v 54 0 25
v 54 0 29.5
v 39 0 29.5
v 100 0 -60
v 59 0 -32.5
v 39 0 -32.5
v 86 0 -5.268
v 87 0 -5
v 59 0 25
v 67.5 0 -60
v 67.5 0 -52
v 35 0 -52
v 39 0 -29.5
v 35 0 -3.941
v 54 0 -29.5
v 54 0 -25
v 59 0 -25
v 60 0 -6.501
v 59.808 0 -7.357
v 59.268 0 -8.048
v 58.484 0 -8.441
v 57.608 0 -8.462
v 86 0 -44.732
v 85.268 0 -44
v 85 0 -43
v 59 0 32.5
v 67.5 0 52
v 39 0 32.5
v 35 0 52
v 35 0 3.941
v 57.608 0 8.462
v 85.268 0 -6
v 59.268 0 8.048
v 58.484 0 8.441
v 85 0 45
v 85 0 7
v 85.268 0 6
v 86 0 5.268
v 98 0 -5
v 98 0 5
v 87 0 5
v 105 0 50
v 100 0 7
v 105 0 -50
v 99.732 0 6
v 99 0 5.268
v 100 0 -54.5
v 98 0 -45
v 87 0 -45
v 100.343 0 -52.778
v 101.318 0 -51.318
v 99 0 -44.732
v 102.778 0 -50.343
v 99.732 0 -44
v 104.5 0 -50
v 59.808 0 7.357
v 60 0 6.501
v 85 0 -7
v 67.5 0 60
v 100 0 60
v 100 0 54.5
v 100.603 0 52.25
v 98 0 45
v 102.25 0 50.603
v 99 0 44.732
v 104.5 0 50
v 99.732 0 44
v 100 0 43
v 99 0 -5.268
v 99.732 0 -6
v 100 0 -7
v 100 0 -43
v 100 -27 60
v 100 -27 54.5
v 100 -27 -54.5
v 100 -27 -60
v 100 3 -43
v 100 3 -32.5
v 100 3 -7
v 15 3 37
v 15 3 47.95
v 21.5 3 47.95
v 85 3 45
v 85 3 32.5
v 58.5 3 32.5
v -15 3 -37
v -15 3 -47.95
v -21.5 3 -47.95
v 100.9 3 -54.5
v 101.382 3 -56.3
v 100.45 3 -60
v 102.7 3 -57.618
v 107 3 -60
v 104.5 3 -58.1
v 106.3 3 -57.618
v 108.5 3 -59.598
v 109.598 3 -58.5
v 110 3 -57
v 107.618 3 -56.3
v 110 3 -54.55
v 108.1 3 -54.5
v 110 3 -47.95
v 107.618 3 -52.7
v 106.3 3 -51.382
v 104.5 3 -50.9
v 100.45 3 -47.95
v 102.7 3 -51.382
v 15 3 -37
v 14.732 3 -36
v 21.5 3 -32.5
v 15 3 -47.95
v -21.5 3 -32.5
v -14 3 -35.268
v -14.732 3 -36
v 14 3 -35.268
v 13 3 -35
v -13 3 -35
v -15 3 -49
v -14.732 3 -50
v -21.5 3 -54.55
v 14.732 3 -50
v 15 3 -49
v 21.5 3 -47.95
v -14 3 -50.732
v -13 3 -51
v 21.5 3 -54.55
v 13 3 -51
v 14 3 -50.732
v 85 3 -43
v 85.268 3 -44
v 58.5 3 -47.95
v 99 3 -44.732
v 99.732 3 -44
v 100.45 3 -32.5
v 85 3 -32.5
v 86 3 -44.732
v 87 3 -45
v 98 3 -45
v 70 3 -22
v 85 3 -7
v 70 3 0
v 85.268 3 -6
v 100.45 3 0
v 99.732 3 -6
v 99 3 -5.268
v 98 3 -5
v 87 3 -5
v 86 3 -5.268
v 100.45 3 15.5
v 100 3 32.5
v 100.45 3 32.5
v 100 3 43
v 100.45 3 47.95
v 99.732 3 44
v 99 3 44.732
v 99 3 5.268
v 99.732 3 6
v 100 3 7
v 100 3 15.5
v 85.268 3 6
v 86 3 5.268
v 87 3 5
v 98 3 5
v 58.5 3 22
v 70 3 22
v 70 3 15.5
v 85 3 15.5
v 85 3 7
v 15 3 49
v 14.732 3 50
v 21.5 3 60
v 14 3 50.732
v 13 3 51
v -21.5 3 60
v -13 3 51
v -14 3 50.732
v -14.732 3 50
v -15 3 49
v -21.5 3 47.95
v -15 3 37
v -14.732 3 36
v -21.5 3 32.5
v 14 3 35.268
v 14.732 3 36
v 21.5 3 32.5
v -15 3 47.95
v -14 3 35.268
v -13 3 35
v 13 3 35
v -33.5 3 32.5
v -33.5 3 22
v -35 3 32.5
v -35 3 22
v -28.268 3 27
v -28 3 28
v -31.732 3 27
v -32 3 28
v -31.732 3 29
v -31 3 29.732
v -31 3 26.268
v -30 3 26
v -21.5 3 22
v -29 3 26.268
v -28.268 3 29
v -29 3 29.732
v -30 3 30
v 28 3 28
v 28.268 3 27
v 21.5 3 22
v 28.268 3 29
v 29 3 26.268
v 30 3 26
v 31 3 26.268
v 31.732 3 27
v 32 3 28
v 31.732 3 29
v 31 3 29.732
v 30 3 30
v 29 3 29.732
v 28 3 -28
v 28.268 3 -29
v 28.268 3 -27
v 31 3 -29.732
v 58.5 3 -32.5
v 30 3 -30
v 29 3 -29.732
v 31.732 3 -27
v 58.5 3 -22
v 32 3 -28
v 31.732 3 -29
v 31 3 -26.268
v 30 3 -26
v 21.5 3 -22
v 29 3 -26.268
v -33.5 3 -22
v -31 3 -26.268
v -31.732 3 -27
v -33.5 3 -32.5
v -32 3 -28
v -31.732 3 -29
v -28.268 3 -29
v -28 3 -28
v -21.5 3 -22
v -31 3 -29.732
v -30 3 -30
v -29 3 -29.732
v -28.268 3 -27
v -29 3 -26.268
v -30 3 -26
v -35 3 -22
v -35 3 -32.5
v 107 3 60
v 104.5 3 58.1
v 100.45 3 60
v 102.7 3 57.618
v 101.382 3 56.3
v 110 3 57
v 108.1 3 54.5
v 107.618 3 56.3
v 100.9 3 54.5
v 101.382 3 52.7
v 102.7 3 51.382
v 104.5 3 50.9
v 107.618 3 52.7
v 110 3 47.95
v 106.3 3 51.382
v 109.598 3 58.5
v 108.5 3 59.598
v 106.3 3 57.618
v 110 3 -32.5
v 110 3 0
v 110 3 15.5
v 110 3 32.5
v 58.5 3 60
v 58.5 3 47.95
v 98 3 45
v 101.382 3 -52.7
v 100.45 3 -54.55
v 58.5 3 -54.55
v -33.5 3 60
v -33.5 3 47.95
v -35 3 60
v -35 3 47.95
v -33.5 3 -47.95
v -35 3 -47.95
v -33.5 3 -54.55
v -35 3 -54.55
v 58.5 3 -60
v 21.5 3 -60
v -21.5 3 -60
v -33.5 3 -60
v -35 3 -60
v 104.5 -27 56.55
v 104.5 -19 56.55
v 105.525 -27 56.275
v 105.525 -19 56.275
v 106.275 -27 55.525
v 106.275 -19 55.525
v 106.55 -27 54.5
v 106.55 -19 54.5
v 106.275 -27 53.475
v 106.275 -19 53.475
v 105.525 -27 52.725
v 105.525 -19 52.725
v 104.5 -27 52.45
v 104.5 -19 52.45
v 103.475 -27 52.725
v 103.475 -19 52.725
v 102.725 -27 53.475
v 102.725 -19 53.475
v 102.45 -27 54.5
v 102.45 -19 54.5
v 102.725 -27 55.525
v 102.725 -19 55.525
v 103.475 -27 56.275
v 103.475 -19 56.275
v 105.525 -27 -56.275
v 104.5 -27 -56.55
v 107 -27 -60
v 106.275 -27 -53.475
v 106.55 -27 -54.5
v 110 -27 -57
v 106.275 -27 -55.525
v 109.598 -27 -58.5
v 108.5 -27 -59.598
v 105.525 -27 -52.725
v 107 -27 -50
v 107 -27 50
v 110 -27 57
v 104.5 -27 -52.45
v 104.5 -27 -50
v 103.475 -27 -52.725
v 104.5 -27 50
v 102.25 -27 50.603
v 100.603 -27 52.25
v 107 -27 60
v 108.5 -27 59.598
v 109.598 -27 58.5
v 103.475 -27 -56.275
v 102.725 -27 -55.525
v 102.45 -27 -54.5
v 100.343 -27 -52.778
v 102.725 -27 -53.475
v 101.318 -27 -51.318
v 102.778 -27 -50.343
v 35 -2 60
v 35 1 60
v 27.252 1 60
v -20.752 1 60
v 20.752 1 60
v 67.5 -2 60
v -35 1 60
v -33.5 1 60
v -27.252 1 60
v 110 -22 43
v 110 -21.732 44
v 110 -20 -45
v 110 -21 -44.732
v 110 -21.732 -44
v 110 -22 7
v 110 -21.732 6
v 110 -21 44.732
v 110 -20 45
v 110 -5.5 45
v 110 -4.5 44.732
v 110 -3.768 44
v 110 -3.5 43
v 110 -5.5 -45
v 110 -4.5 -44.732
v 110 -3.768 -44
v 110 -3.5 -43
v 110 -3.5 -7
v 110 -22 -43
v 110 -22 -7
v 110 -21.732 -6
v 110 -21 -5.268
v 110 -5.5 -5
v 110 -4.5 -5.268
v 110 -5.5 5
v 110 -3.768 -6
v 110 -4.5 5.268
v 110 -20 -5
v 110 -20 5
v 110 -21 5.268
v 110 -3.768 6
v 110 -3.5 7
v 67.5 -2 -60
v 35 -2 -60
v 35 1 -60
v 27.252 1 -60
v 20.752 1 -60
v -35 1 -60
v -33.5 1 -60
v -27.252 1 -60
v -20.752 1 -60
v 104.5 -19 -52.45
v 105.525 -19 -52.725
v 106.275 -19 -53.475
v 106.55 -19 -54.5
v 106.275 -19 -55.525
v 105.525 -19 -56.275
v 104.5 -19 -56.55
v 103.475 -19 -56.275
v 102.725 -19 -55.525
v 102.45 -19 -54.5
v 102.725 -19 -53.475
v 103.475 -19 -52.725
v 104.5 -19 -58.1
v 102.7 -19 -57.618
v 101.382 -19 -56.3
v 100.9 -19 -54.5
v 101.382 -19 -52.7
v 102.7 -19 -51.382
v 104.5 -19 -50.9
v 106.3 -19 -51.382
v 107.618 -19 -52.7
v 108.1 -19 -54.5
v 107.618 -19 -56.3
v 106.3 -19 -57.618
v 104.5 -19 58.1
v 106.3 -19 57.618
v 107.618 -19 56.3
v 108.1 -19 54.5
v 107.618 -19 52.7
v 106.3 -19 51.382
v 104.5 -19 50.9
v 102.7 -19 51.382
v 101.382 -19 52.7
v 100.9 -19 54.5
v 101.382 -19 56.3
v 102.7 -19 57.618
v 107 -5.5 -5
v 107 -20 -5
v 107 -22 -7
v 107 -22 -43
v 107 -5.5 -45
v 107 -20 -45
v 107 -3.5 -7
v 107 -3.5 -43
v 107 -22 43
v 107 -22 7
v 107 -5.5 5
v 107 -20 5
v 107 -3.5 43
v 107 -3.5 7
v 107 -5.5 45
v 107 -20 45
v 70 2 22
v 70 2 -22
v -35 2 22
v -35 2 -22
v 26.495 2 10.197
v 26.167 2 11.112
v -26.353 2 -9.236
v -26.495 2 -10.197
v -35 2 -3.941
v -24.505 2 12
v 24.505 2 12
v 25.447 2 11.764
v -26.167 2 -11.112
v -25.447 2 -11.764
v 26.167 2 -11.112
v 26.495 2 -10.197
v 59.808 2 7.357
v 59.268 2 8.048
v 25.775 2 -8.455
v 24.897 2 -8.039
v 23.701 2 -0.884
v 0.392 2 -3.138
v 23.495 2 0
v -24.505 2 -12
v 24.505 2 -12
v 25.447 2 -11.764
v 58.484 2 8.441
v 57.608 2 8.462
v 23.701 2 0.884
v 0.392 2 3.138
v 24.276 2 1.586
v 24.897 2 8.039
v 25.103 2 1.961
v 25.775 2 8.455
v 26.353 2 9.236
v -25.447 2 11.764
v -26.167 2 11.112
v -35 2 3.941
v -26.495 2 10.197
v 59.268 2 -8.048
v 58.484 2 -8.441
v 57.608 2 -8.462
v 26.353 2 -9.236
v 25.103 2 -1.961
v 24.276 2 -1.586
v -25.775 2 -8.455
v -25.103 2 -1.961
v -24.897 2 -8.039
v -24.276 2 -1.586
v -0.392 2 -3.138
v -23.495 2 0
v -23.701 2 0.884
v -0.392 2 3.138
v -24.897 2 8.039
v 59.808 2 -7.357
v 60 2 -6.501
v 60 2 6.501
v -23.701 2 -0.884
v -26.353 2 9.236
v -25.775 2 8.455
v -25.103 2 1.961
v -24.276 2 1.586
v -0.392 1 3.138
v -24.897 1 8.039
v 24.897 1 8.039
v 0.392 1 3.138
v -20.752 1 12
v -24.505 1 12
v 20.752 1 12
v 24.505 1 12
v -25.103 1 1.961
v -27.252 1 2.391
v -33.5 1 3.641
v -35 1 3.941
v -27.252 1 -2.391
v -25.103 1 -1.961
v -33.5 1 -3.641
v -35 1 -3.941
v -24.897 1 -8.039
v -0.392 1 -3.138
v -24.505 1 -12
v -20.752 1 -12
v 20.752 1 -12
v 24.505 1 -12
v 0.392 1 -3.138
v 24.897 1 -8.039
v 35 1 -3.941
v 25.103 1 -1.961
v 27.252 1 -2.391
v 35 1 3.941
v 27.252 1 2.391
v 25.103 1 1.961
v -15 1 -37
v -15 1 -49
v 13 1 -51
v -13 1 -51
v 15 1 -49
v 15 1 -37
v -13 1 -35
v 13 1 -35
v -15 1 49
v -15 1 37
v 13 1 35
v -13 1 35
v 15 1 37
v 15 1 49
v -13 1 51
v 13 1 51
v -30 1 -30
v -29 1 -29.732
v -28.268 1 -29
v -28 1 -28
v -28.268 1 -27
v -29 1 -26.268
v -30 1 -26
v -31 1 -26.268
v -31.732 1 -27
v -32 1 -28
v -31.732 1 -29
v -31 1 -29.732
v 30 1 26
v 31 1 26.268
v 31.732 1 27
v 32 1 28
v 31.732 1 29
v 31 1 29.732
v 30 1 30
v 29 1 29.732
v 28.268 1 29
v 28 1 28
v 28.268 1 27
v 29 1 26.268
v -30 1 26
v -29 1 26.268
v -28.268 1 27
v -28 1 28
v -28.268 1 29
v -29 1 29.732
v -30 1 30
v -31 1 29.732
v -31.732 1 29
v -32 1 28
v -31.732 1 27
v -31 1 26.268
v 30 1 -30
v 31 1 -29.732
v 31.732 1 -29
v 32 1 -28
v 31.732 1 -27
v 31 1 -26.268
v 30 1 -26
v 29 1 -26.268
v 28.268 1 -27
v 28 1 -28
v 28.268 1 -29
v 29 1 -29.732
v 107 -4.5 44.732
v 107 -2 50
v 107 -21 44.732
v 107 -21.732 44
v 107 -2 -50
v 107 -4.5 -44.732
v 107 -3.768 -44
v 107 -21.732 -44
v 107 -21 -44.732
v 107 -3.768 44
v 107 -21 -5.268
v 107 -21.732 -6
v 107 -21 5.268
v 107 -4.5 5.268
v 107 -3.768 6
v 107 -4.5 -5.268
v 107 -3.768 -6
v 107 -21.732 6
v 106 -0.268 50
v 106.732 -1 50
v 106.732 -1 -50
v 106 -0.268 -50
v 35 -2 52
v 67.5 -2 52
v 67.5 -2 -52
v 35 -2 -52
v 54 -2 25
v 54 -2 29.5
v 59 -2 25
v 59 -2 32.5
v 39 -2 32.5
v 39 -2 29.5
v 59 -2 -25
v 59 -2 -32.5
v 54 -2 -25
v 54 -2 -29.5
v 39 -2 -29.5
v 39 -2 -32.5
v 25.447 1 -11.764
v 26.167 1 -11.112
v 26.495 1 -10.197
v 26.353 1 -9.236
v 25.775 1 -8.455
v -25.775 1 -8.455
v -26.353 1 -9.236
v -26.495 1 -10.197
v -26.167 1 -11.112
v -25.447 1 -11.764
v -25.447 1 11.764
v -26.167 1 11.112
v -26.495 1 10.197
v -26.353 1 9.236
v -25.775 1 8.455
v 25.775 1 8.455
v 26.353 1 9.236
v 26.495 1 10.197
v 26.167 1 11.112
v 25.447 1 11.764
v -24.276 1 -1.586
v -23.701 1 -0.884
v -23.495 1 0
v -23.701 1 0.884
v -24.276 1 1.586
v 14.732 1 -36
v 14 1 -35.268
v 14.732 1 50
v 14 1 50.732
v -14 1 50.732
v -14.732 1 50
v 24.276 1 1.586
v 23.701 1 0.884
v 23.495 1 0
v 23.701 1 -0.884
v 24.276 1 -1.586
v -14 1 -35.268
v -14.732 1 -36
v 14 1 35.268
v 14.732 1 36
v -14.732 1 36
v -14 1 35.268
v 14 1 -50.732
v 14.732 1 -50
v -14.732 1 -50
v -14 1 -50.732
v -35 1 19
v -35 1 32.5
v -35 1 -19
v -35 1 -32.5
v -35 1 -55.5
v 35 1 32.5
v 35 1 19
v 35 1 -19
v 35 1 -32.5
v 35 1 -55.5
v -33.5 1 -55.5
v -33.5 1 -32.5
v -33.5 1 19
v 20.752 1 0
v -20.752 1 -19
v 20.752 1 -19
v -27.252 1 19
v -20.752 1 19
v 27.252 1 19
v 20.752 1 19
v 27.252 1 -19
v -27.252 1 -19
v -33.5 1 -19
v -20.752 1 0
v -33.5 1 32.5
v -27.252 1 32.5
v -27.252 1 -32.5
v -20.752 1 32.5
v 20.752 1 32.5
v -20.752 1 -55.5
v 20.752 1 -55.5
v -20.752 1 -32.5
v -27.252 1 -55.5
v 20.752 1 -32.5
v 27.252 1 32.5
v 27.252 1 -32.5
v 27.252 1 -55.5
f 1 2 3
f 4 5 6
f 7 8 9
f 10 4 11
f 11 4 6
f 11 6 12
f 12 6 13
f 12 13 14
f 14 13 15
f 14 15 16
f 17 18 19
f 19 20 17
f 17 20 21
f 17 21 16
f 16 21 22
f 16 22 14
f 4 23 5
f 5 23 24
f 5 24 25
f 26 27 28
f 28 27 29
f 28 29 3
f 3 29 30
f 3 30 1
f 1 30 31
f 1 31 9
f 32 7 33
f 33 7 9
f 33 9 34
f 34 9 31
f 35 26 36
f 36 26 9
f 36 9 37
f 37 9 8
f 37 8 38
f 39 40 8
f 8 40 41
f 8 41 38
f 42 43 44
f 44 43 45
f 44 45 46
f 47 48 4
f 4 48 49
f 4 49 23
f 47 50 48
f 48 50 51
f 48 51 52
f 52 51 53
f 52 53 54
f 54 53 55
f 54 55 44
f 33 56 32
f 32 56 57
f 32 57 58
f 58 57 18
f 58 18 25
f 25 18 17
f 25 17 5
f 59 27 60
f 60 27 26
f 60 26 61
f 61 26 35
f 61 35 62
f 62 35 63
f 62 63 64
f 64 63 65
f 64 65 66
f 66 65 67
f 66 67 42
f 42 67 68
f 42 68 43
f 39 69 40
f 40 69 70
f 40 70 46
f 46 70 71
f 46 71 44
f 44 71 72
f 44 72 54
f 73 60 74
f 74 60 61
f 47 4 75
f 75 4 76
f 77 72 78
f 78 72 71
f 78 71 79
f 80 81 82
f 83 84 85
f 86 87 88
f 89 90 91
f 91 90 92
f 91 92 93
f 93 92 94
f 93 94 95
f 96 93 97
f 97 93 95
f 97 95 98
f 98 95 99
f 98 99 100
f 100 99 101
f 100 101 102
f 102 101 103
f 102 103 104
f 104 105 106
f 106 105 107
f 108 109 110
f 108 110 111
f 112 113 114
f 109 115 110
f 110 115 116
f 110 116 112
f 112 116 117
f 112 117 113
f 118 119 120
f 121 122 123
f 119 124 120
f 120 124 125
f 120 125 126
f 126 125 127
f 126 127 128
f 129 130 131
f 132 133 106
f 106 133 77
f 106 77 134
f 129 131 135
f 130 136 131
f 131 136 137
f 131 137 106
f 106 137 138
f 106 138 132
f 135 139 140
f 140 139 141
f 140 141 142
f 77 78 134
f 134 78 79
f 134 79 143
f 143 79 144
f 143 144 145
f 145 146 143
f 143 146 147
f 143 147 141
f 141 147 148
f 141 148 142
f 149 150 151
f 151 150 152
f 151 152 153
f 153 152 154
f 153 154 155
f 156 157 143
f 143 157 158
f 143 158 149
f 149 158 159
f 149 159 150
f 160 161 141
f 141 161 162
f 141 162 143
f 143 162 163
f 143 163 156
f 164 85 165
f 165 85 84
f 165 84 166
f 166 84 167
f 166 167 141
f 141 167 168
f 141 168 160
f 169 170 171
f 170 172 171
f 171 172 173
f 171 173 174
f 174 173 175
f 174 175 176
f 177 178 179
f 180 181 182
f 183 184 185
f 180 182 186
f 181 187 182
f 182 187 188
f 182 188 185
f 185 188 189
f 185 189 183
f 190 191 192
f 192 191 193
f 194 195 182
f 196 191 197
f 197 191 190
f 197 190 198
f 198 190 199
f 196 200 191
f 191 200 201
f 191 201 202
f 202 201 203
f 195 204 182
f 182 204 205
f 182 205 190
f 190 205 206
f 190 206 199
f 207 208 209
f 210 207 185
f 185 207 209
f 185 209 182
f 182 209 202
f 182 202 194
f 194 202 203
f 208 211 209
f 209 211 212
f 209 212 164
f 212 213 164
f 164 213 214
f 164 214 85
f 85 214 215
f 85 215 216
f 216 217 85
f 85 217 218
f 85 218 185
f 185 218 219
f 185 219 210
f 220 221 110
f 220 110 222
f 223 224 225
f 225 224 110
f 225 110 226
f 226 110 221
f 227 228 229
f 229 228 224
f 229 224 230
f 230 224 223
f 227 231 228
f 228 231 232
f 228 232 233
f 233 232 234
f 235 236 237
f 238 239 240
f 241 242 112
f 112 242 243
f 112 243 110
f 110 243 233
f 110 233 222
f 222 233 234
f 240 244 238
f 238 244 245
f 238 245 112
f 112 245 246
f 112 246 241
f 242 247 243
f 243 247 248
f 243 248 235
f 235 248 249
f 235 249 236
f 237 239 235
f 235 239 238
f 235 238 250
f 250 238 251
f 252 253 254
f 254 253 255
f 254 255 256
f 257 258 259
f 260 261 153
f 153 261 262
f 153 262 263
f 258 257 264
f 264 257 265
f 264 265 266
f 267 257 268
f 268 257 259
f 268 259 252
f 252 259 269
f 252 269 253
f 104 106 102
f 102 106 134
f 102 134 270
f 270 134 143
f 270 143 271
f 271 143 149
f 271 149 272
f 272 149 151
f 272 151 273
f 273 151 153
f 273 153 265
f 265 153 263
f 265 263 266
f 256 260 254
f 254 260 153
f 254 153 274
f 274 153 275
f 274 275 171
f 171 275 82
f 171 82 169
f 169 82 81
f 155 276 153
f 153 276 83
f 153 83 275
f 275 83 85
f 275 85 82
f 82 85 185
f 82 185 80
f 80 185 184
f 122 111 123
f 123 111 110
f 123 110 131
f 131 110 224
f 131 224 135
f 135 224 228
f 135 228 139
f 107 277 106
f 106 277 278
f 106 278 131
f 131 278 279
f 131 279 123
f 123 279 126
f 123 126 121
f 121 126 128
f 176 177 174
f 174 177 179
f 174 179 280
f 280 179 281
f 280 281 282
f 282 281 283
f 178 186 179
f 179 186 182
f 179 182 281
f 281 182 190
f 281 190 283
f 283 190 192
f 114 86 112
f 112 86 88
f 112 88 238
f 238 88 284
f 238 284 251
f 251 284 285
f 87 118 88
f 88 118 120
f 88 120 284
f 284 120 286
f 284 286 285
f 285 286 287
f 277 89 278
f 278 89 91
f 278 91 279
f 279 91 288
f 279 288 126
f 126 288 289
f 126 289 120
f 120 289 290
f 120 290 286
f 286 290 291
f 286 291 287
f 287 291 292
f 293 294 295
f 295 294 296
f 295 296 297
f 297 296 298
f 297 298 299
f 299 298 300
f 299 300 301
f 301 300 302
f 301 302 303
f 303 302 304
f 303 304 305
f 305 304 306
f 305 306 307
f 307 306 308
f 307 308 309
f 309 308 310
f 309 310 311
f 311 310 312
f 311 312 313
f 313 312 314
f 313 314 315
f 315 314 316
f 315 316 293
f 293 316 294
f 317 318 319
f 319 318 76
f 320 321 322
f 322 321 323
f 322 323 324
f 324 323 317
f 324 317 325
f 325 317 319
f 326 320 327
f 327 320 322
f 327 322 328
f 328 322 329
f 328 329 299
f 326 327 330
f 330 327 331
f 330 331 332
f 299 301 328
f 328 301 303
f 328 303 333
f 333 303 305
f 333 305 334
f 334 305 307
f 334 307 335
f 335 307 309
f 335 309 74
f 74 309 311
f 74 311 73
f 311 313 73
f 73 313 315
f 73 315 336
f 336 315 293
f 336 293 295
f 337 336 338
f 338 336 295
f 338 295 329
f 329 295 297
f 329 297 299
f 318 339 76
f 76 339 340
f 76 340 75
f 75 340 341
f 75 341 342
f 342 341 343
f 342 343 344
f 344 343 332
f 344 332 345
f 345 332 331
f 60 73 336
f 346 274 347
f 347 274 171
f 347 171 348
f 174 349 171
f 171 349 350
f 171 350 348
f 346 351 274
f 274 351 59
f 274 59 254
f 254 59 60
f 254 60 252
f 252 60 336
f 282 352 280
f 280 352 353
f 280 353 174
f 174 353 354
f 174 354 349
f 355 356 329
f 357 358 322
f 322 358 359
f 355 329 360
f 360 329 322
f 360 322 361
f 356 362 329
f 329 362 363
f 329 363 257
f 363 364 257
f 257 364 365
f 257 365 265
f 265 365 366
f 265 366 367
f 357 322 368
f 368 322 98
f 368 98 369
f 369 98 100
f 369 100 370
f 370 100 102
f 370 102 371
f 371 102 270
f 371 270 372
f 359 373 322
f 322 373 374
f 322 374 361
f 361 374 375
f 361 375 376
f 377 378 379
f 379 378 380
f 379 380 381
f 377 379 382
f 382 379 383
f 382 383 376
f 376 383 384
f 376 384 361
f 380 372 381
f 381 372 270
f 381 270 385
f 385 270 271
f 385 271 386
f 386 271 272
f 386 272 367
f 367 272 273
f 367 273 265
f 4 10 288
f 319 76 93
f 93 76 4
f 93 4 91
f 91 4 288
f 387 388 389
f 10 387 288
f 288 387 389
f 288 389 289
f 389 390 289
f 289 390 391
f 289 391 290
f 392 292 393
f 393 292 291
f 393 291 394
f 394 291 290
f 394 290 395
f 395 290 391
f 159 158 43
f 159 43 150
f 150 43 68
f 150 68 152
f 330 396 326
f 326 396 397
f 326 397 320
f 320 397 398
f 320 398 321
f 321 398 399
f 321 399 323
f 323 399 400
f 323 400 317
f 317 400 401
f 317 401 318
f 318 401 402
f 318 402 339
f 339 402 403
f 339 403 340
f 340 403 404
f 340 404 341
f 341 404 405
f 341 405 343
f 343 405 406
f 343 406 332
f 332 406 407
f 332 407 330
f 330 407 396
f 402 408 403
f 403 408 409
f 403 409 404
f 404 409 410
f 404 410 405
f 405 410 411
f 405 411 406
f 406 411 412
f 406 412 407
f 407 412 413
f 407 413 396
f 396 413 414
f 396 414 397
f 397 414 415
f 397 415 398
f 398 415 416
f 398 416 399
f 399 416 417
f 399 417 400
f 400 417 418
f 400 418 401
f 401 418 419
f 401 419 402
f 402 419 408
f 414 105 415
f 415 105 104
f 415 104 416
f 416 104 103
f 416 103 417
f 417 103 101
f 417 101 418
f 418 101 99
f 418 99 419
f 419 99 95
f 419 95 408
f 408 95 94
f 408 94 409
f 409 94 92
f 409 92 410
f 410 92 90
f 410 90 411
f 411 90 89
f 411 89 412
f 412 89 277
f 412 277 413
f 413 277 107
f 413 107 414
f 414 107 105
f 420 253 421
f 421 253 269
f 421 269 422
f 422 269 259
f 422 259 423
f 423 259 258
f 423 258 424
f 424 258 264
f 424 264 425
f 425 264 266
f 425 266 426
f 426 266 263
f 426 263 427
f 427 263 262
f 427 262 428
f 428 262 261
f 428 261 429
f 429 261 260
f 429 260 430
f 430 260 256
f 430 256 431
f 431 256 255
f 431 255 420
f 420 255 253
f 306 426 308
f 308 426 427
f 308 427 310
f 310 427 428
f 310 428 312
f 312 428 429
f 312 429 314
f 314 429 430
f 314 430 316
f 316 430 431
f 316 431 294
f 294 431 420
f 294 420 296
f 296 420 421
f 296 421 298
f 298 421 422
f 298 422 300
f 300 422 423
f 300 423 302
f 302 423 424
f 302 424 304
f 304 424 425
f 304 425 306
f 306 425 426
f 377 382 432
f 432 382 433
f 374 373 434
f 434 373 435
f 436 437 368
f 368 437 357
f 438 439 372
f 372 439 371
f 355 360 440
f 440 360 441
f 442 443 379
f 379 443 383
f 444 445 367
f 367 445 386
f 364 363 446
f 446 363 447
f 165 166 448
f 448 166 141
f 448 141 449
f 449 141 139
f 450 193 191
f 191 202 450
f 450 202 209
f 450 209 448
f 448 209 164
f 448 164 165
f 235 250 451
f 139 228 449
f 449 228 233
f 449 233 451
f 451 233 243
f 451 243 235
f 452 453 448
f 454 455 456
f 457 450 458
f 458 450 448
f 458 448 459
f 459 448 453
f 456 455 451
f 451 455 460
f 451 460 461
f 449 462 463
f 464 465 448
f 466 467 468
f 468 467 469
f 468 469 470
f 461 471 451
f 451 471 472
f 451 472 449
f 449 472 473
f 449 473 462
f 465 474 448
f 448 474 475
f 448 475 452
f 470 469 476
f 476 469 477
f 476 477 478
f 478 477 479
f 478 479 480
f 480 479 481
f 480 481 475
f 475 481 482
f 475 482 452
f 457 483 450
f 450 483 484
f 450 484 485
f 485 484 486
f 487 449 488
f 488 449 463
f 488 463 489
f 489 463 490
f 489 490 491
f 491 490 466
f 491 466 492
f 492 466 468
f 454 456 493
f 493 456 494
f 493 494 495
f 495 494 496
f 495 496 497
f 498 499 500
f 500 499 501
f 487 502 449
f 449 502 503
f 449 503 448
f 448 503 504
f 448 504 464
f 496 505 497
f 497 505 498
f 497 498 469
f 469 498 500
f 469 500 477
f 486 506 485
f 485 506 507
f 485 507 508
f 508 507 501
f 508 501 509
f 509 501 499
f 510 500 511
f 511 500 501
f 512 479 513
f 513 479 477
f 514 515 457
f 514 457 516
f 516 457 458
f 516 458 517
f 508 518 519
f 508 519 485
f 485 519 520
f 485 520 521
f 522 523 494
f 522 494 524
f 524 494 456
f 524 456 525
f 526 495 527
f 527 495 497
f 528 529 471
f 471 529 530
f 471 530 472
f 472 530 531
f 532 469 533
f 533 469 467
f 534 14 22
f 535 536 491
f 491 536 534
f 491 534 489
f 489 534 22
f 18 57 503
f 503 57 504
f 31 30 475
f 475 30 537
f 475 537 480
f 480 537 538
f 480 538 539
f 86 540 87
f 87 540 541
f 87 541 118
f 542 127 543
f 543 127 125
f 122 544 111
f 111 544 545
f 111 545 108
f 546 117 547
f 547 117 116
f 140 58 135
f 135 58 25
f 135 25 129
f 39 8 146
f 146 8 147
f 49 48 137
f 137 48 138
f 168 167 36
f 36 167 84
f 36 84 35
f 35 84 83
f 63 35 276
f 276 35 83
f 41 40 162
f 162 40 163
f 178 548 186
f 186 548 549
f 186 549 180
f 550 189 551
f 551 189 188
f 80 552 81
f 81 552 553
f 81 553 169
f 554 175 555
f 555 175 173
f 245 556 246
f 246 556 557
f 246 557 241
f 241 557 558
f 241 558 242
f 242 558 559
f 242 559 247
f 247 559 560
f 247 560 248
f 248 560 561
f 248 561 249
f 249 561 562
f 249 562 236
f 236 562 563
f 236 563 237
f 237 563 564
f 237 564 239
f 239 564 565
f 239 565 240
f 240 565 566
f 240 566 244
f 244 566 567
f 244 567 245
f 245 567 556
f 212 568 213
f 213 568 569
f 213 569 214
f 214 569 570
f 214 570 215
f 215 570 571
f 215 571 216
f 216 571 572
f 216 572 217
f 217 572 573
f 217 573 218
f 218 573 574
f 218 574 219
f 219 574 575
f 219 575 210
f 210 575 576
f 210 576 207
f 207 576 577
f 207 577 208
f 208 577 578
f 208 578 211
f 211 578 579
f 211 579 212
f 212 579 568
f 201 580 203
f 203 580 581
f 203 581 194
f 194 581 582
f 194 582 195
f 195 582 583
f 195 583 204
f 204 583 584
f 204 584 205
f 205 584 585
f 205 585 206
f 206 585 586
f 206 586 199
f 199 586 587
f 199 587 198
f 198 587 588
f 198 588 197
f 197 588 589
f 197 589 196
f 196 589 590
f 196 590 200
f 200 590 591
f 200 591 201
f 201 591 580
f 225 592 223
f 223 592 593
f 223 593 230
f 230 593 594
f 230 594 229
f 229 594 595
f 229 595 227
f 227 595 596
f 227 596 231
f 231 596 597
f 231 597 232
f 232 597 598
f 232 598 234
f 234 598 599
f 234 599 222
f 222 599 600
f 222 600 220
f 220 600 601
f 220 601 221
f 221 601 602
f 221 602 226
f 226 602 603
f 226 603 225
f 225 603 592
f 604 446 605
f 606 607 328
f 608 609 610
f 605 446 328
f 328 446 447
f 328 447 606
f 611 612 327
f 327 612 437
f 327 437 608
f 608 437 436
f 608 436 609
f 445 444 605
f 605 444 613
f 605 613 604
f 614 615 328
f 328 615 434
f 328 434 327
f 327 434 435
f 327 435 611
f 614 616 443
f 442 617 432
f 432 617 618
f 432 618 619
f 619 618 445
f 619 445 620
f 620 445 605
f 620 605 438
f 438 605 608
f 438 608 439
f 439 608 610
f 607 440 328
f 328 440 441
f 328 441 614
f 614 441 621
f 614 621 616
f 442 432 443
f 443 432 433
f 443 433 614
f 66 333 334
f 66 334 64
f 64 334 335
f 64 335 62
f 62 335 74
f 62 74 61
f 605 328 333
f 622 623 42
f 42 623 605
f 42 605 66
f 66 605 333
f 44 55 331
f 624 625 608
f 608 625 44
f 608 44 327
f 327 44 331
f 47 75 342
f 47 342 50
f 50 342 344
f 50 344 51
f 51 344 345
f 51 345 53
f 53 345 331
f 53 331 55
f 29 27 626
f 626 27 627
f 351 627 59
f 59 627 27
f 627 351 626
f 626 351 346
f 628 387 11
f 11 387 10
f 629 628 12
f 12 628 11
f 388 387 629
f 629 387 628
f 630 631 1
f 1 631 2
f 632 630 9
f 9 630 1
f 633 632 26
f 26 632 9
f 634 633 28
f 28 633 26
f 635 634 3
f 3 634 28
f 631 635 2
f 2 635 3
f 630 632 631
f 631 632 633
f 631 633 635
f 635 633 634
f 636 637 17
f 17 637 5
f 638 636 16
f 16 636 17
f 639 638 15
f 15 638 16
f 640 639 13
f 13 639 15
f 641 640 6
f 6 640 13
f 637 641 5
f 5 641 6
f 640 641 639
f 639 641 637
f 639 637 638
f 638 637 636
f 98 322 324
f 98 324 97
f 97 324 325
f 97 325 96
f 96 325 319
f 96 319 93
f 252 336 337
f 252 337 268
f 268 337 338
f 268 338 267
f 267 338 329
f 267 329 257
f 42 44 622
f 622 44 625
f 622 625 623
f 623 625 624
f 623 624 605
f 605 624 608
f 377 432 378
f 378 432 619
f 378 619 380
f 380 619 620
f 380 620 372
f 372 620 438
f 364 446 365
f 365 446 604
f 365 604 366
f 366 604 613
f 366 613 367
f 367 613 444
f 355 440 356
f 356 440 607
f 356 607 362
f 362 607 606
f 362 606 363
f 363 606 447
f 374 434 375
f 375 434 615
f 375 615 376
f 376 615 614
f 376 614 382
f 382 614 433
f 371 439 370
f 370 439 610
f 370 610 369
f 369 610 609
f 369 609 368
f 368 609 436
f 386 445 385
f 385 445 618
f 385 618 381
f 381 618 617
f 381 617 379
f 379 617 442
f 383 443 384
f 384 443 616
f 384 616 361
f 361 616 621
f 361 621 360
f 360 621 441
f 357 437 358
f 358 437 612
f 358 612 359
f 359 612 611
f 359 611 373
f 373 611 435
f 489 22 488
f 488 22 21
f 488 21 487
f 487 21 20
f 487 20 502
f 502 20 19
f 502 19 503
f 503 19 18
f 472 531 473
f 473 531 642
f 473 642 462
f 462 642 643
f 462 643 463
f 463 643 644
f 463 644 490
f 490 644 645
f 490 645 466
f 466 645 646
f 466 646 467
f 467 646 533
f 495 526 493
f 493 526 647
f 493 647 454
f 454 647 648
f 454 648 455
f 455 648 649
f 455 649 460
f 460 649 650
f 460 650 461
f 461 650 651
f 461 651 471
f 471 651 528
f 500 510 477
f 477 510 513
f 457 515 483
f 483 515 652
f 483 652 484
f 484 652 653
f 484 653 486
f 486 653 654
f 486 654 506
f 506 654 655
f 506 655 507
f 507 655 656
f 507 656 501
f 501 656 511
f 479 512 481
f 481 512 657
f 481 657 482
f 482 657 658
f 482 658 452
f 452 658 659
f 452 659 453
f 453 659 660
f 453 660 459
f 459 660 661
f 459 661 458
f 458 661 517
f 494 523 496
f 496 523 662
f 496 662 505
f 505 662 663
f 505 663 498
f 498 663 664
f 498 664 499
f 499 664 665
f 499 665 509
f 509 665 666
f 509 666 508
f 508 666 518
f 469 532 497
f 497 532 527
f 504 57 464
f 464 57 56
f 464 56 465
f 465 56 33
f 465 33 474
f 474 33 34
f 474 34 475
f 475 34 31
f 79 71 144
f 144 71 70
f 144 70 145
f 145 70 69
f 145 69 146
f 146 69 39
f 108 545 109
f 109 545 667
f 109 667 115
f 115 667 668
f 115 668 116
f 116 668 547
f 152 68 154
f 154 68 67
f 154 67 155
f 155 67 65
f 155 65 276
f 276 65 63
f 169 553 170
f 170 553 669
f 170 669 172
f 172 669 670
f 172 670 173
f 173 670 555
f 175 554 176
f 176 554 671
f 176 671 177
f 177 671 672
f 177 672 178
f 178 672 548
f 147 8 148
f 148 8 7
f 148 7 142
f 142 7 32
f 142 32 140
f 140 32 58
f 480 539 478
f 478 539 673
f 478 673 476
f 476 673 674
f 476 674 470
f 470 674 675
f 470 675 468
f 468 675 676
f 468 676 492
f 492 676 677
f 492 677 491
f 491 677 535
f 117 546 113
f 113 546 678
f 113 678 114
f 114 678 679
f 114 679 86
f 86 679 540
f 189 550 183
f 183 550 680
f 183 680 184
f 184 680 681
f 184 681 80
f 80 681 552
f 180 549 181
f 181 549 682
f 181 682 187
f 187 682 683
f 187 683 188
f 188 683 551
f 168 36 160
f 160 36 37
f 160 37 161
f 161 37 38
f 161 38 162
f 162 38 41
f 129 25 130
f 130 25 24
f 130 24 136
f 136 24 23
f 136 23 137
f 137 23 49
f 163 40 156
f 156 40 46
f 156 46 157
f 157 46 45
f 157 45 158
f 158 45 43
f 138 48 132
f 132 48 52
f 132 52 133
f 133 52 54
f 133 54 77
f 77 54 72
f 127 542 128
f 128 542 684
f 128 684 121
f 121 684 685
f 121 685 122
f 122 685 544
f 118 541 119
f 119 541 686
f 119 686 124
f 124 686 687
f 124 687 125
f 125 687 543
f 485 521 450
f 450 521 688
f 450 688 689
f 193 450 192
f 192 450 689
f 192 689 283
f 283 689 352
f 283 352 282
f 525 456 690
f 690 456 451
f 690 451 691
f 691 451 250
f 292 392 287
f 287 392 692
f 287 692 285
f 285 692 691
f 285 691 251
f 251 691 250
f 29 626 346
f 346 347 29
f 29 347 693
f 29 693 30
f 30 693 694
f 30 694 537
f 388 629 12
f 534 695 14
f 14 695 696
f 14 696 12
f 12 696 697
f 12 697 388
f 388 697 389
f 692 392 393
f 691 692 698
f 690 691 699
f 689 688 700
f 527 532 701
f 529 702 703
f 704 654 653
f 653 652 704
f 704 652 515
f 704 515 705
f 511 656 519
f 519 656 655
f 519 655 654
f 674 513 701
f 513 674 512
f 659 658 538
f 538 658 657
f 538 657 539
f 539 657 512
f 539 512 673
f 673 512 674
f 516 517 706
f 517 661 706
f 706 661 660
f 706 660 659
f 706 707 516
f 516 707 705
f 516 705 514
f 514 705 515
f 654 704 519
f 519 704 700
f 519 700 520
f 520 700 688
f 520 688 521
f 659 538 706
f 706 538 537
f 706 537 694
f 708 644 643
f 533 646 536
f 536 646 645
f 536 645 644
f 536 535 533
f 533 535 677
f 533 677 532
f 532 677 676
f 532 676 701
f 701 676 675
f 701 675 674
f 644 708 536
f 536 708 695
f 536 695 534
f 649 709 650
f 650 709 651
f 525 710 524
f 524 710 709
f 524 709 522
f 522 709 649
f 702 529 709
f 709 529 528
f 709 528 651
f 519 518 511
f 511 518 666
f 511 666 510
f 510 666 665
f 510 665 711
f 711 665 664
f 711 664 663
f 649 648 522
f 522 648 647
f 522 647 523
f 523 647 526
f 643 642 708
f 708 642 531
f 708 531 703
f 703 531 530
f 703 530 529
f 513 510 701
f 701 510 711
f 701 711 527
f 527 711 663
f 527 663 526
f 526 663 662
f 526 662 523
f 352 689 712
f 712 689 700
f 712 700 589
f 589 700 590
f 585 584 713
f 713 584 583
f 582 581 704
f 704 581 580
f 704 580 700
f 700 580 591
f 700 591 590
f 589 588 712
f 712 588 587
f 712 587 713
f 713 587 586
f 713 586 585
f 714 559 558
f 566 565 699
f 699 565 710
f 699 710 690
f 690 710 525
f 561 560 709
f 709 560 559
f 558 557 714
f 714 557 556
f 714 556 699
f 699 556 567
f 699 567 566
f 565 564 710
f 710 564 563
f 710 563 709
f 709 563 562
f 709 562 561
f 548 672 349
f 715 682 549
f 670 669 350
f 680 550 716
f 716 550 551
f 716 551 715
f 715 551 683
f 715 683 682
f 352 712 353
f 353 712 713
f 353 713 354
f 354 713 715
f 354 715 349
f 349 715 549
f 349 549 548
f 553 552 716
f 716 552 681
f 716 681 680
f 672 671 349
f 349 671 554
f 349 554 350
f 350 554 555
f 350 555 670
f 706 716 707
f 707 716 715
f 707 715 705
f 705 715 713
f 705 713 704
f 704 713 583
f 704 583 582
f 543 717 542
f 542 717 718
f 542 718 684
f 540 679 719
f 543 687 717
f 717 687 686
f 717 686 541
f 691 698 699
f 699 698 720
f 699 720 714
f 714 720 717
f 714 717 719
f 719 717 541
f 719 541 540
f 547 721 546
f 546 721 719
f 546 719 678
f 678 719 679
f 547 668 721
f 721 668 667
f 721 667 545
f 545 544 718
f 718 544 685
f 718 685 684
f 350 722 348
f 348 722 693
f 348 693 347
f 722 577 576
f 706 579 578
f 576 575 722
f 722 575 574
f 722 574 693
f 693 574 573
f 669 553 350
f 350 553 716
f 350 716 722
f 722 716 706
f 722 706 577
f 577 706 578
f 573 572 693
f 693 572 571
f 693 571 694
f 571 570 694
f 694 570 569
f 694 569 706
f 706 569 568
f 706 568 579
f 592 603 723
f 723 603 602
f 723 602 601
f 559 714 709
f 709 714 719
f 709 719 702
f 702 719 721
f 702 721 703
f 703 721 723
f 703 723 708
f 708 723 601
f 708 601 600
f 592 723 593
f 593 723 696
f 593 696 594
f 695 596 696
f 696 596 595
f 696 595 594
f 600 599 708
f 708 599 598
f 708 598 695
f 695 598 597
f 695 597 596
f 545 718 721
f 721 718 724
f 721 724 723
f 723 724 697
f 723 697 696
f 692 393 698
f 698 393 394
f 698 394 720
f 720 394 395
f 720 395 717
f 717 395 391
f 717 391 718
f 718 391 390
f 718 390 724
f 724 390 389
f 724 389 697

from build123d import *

# Parameters (mm, degrees)
SKETCH_8_W                = 220
SKETCH_8_H                = 120
EXTRUDE_6_DEPTH           = 3
SKETCH_10_W               = 10
SKETCH_10_H               = 120
EXTRUDE_7_DEPTH           = 27
CUT_EXTRUDE_1_DEPTH       = 129.175660716
CUT_EXTRUDE_1_DEPTH_BACK  = 129.175660716
SKETCH_9_R                = 2.05
SKETCH_11_R               = 3.6
CUT_EXTRUDE_2_DEPTH       = 22
CUT_EXTRUDE_4_DEPTH       = 129.175660716
CUT_EXTRUDE_4_DEPTH_BACK  = 129.175660716
SKETCH_13_W               = 40
SKETCH_13_H               = 18.5
SKETCH_14_W               = 140
SKETCH_14_H               = 44
CUT_EXTRUDE_7_DEPTH       = 1
SKETCH_15_W               = 15
SKETCH_15_H               = 80
SKETCH_15_H_2             = 40
SKETCH_15_W_2             = 30
SKETCH_15_H_3             = 16
CUT_EXTRUDE_8_DEPTH       = 129.840987267
SKETCH_9_5_R              = 2
CUT_EXTRUDE_9_DEPTH       = 129.175660716
CUT_EXTRUDE_13_DEPTH      = 27
SKETCH_20_W               = 135
SKETCH_20_H               = 8
EXTRUDE_8_DEPTH           = 2
FILLET_1_R                = 3
FILLET_2_R                = 2
CUT_EXTRUDE_14_DEPTH      = 129.175660716
CUT_EXTRUDE_14_DEPTH_BACK = 129.175660716


with BuildPart() as part:
    # 草圖8 → 填料-伸長6 (new body)
    with BuildSketch(Plane(origin=(0, 0, 0), x_dir=(1, 0, 0), z_dir=(0, 1, 0))):
        Rectangle(SKETCH_8_W, SKETCH_8_H)
    extrude(amount=EXTRUDE_6_DEPTH)

    # 草圖10 → 填料-伸長7 (add)
    with BuildSketch(Plane.XZ):
        with Locations((-105, 0)):
            Rectangle(SKETCH_10_W, SKETCH_10_H)
        with Locations((105, 0)):
            Rectangle(SKETCH_10_W, SKETCH_10_H)
    extrude(amount=EXTRUDE_7_DEPTH)

    # 草圖9 → 除料-伸長1 (cut, two sides: drawn at the far end of the back side and taken through both)
    with BuildSketch(Plane(origin=(0, 0, 0), x_dir=(1, 0, 0), z_dir=(0, 1, 0)).offset(-CUT_EXTRUDE_1_DEPTH_BACK)):
        with Locations((104.5, 54.5)):
            Circle(SKETCH_9_R)
        with Locations((-104.5, 54.5)):
            Circle(SKETCH_9_R)
        with Locations((-104.5, -54.5)):
            Circle(SKETCH_9_R)
        with Locations((104.5, -54.5)):
            Circle(SKETCH_9_R)
    extrude(amount=CUT_EXTRUDE_1_DEPTH + CUT_EXTRUDE_1_DEPTH_BACK, mode=Mode.SUBTRACT)

    # 草圖11 → 除料-伸長2 (cut)
    with BuildSketch(Plane(origin=(0, 3, 0), x_dir=(1, 0, 0), z_dir=(0, 1, 0))):
        with Locations((-104.497380754, 54.5)):
            Circle(SKETCH_11_R)
        with Locations((-104.497380754, -54.5)):
            Circle(SKETCH_11_R)
        with Locations((104.5, -54.5)):
            Circle(SKETCH_11_R)
        with Locations((104.5, 54.5)):
            Circle(SKETCH_11_R)
    extrude(amount=-CUT_EXTRUDE_2_DEPTH, mode=Mode.SUBTRACT)

    # 草圖13 → 除料-伸長4 (cut, two sides: drawn at the far end of the back side and taken through both)
    with BuildSketch(Plane(origin=(0, 0, 0), x_dir=(0, 0, -1), z_dir=(1, 0, 0)).offset(-CUT_EXTRUDE_4_DEPTH_BACK)):
        with Locations((-25, -12.75)):
            Rectangle(SKETCH_13_W, SKETCH_13_H)
        with Locations((25, -12.75)):
            Rectangle(SKETCH_13_W, SKETCH_13_H)
    extrude(amount=CUT_EXTRUDE_4_DEPTH + CUT_EXTRUDE_4_DEPTH_BACK, mode=Mode.SUBTRACT)

    # 草圖14 → 除料-伸長7 (cut)
    with BuildSketch(Plane(origin=(0, 3, 0), x_dir=(1, 0, 0), z_dir=(0, 1, 0))):
        Rectangle(SKETCH_14_W, SKETCH_14_H)
    extrude(amount=-CUT_EXTRUDE_7_DEPTH, mode=Mode.SUBTRACT)

    # 草圖15 → 除料-伸長8 (cut, through all)
    with BuildSketch(Plane(origin=(0, 3, 0), x_dir=(1, 0, 0), z_dir=(0, 1, 0))):
        with Locations((-92.5, 0)):
            Rectangle(SKETCH_15_W, SKETCH_15_H)
        with Locations((92.5, 25)):
            Rectangle(SKETCH_15_W, SKETCH_15_H_2)
        Polygon((-44.702941459, -12), (44.702941459, -12), (0, -3.059411708), align=None)
        Polygon((-60, -8.940588292), (-60, 8.940588292), (-15.297058541, 0), align=None)
        Polygon((-44.702941459, 12), (44.702941459, 12), (0, 3.059411708), align=None)
        Polygon((60, -8.940588292), (60, 8.940588292), (15.297058541, 0), align=None)
        with Locations((0, -43)):
            Rectangle(SKETCH_15_W_2, SKETCH_15_H_3)
        with Locations((0, 43)):
            Rectangle(SKETCH_15_W_2, SKETCH_15_H_3)
        with Locations((92.5, -25)):
            Rectangle(SKETCH_15_W, SKETCH_15_H_2)
    extrude(amount=-CUT_EXTRUDE_8_DEPTH, mode=Mode.SUBTRACT)

    # 草圖9<5> → 除料-伸長9 (cut, through all)
    with BuildSketch(Plane(origin=(0, 0, 0), x_dir=(1, 0, 0), z_dir=(0, 1, 0))):
        with Locations((30, 28)):
            Circle(SKETCH_9_5_R)
        with Locations((-30, 28)):
            Circle(SKETCH_9_5_R)
        with Locations((30, -28)):
            Circle(SKETCH_9_5_R)
        with Locations((-30, -28)):
            Circle(SKETCH_9_5_R)
    extrude(amount=CUT_EXTRUDE_9_DEPTH, mode=Mode.SUBTRACT)

    # 草圖19 → 除料-伸長13 (cut)
    with BuildSketch(Plane.XZ.offset(27)):
        with BuildLine():
            Line((-100, 54.5), (-100, -54.5))
            ThreePointArc((-100, -54.5), (-101.318019485, -51.318019485), (-104.5, -50))
            Line((-104.5, -50), (-107, -50))
            Line((-107, -50), (-107, 50))
            Line((-107, 50), (-104.5, 50))
            ThreePointArc((-104.5, 50), (-101.318019485, 51.318019485), (-100, 54.5))
        make_face()
        with BuildLine():
            Line((100, 54.5), (100, -54.5))
            ThreePointArc((100, -54.5), (101.318019485, -51.318019485), (104.5, -50))
            Line((104.5, -50), (107, -50))
            Line((107, -50), (107, 50))
            Line((107, 50), (104.5, 50))
            ThreePointArc((104.5, 50), (101.318019485, 51.318019485), (100, 54.5))
        make_face()
    extrude(amount=-CUT_EXTRUDE_13_DEPTH, mode=Mode.SUBTRACT)

    # 草圖20 → 填料-伸長8 (add)
    with BuildSketch(Plane.XZ):
        with Locations((0, 56)):
            Rectangle(SKETCH_20_W, SKETCH_20_H)
        with Locations((0, -56)):
            Rectangle(SKETCH_20_W, SKETCH_20_H)
        Polygon((-59, 32.5), (-39, 32.5), (-39, 29.5), (-54, 29.5), (-54, 25), (-59, 25), align=None)
        Polygon((54, 29.5), (39, 29.5), (39, 32.5), (59, 32.5), (59, 25), (54, 25), align=None)
        Polygon((59, -32.5), (39, -32.5), (39, -29.5), (54, -29.5), (54, -25), (59, -25), align=None)
        Polygon((-54, -29.5), (-39, -29.5), (-39, -32.5), (-59, -32.5), (-59, -25), (-54, -25), align=None)
    extrude(amount=EXTRUDE_8_DEPTH)

    # 圓角1
    fillet_1_edges = [part.edges().sort_by_distance(p)[0] for p in [
        (-110, -12, 60),
        (-110, -12, -60),
        (110, -12, -60),
        (110, -12, 60),
    ]]
    fillet(fillet_1_edges, radius=FILLET_1_R)

    # 圓角2
    fillet_2_edges = [part.edges().sort_by_distance(p)[0] for p in [
        (-107, 0, 0),
        (107, 0, 0),
        (108.5, -3.5, -5),
        (108.5, -3.5, 45),
        (108.5, -22, 45),
        (108.5, -22, -5),
        (108.5, -3.5, -45),
        (108.5, -3.5, 5),
        (108.5, -22, 5),
        (108.5, -22, -45),
        (-108.5, -22, -45),
        (-108.5, -22, 5),
        (-108.5, -3.5, -45),
        (-108.5, -3.5, 5),
        (-108.5, -22, 45),
        (-108.5, -3.5, 45),
        (-108.5, -3.5, -5),
        (-108.5, -22, -5),
        (60, 1, -8.940588292),
        (44.702941459, 1, -12),
        (-44.702941459, 1, -12),
        (0, 1, 3.059411708),
        (-44.702941459, 1, 12),
        (44.702941459, 1, 12),
        (-15.297058541, 1, 0),
        (0, 1, -3.059411708),
        (60, 1, 8.940588292),
        (100, 1.5, -5),
        (15, 1.5, -35),
        (100, 1.5, 45),
        (15, 1.5, 51),
        (-85, 1.5, 40),
        (-15, 1.5, 51),
        (85, 1.5, -5),
        (15.297058541, 1, 0),
        (-100, 1.5, 40),
        (-15, 1.5, -35),
        (-60, 1, 8.940588292),
        (-60, 1, -8.940588292),
        (15, 1.5, 35),
        (-15, 1.5, 35),
        (85, 1.5, 5),
        (85, 1.5, -45),
        (100, 1.5, 5),
        (100, 1.5, -45),
        (15, 1.5, -51),
        (-15, 1.5, -51),
        (-85, 1.5, -40),
        (-100, 1.5, -40),
    ]]
    fillet(fillet_2_edges, radius=FILLET_2_R)

    # 草圖21 → 除料-伸長14 (cut, two sides: drawn at the far end of the back side and taken through both)
    with BuildSketch(Plane.XY.offset(-CUT_EXTRUDE_14_DEPTH_BACK)):
        Polygon((-35, 3), (-35, 1), (35, 1), (35, -27), (-110, -27), (-110, 3), align=None)
    extrude(amount=CUT_EXTRUDE_14_DEPTH + CUT_EXTRUDE_14_DEPTH_BACK, mode=Mode.SUBTRACT)


solid = part.part
